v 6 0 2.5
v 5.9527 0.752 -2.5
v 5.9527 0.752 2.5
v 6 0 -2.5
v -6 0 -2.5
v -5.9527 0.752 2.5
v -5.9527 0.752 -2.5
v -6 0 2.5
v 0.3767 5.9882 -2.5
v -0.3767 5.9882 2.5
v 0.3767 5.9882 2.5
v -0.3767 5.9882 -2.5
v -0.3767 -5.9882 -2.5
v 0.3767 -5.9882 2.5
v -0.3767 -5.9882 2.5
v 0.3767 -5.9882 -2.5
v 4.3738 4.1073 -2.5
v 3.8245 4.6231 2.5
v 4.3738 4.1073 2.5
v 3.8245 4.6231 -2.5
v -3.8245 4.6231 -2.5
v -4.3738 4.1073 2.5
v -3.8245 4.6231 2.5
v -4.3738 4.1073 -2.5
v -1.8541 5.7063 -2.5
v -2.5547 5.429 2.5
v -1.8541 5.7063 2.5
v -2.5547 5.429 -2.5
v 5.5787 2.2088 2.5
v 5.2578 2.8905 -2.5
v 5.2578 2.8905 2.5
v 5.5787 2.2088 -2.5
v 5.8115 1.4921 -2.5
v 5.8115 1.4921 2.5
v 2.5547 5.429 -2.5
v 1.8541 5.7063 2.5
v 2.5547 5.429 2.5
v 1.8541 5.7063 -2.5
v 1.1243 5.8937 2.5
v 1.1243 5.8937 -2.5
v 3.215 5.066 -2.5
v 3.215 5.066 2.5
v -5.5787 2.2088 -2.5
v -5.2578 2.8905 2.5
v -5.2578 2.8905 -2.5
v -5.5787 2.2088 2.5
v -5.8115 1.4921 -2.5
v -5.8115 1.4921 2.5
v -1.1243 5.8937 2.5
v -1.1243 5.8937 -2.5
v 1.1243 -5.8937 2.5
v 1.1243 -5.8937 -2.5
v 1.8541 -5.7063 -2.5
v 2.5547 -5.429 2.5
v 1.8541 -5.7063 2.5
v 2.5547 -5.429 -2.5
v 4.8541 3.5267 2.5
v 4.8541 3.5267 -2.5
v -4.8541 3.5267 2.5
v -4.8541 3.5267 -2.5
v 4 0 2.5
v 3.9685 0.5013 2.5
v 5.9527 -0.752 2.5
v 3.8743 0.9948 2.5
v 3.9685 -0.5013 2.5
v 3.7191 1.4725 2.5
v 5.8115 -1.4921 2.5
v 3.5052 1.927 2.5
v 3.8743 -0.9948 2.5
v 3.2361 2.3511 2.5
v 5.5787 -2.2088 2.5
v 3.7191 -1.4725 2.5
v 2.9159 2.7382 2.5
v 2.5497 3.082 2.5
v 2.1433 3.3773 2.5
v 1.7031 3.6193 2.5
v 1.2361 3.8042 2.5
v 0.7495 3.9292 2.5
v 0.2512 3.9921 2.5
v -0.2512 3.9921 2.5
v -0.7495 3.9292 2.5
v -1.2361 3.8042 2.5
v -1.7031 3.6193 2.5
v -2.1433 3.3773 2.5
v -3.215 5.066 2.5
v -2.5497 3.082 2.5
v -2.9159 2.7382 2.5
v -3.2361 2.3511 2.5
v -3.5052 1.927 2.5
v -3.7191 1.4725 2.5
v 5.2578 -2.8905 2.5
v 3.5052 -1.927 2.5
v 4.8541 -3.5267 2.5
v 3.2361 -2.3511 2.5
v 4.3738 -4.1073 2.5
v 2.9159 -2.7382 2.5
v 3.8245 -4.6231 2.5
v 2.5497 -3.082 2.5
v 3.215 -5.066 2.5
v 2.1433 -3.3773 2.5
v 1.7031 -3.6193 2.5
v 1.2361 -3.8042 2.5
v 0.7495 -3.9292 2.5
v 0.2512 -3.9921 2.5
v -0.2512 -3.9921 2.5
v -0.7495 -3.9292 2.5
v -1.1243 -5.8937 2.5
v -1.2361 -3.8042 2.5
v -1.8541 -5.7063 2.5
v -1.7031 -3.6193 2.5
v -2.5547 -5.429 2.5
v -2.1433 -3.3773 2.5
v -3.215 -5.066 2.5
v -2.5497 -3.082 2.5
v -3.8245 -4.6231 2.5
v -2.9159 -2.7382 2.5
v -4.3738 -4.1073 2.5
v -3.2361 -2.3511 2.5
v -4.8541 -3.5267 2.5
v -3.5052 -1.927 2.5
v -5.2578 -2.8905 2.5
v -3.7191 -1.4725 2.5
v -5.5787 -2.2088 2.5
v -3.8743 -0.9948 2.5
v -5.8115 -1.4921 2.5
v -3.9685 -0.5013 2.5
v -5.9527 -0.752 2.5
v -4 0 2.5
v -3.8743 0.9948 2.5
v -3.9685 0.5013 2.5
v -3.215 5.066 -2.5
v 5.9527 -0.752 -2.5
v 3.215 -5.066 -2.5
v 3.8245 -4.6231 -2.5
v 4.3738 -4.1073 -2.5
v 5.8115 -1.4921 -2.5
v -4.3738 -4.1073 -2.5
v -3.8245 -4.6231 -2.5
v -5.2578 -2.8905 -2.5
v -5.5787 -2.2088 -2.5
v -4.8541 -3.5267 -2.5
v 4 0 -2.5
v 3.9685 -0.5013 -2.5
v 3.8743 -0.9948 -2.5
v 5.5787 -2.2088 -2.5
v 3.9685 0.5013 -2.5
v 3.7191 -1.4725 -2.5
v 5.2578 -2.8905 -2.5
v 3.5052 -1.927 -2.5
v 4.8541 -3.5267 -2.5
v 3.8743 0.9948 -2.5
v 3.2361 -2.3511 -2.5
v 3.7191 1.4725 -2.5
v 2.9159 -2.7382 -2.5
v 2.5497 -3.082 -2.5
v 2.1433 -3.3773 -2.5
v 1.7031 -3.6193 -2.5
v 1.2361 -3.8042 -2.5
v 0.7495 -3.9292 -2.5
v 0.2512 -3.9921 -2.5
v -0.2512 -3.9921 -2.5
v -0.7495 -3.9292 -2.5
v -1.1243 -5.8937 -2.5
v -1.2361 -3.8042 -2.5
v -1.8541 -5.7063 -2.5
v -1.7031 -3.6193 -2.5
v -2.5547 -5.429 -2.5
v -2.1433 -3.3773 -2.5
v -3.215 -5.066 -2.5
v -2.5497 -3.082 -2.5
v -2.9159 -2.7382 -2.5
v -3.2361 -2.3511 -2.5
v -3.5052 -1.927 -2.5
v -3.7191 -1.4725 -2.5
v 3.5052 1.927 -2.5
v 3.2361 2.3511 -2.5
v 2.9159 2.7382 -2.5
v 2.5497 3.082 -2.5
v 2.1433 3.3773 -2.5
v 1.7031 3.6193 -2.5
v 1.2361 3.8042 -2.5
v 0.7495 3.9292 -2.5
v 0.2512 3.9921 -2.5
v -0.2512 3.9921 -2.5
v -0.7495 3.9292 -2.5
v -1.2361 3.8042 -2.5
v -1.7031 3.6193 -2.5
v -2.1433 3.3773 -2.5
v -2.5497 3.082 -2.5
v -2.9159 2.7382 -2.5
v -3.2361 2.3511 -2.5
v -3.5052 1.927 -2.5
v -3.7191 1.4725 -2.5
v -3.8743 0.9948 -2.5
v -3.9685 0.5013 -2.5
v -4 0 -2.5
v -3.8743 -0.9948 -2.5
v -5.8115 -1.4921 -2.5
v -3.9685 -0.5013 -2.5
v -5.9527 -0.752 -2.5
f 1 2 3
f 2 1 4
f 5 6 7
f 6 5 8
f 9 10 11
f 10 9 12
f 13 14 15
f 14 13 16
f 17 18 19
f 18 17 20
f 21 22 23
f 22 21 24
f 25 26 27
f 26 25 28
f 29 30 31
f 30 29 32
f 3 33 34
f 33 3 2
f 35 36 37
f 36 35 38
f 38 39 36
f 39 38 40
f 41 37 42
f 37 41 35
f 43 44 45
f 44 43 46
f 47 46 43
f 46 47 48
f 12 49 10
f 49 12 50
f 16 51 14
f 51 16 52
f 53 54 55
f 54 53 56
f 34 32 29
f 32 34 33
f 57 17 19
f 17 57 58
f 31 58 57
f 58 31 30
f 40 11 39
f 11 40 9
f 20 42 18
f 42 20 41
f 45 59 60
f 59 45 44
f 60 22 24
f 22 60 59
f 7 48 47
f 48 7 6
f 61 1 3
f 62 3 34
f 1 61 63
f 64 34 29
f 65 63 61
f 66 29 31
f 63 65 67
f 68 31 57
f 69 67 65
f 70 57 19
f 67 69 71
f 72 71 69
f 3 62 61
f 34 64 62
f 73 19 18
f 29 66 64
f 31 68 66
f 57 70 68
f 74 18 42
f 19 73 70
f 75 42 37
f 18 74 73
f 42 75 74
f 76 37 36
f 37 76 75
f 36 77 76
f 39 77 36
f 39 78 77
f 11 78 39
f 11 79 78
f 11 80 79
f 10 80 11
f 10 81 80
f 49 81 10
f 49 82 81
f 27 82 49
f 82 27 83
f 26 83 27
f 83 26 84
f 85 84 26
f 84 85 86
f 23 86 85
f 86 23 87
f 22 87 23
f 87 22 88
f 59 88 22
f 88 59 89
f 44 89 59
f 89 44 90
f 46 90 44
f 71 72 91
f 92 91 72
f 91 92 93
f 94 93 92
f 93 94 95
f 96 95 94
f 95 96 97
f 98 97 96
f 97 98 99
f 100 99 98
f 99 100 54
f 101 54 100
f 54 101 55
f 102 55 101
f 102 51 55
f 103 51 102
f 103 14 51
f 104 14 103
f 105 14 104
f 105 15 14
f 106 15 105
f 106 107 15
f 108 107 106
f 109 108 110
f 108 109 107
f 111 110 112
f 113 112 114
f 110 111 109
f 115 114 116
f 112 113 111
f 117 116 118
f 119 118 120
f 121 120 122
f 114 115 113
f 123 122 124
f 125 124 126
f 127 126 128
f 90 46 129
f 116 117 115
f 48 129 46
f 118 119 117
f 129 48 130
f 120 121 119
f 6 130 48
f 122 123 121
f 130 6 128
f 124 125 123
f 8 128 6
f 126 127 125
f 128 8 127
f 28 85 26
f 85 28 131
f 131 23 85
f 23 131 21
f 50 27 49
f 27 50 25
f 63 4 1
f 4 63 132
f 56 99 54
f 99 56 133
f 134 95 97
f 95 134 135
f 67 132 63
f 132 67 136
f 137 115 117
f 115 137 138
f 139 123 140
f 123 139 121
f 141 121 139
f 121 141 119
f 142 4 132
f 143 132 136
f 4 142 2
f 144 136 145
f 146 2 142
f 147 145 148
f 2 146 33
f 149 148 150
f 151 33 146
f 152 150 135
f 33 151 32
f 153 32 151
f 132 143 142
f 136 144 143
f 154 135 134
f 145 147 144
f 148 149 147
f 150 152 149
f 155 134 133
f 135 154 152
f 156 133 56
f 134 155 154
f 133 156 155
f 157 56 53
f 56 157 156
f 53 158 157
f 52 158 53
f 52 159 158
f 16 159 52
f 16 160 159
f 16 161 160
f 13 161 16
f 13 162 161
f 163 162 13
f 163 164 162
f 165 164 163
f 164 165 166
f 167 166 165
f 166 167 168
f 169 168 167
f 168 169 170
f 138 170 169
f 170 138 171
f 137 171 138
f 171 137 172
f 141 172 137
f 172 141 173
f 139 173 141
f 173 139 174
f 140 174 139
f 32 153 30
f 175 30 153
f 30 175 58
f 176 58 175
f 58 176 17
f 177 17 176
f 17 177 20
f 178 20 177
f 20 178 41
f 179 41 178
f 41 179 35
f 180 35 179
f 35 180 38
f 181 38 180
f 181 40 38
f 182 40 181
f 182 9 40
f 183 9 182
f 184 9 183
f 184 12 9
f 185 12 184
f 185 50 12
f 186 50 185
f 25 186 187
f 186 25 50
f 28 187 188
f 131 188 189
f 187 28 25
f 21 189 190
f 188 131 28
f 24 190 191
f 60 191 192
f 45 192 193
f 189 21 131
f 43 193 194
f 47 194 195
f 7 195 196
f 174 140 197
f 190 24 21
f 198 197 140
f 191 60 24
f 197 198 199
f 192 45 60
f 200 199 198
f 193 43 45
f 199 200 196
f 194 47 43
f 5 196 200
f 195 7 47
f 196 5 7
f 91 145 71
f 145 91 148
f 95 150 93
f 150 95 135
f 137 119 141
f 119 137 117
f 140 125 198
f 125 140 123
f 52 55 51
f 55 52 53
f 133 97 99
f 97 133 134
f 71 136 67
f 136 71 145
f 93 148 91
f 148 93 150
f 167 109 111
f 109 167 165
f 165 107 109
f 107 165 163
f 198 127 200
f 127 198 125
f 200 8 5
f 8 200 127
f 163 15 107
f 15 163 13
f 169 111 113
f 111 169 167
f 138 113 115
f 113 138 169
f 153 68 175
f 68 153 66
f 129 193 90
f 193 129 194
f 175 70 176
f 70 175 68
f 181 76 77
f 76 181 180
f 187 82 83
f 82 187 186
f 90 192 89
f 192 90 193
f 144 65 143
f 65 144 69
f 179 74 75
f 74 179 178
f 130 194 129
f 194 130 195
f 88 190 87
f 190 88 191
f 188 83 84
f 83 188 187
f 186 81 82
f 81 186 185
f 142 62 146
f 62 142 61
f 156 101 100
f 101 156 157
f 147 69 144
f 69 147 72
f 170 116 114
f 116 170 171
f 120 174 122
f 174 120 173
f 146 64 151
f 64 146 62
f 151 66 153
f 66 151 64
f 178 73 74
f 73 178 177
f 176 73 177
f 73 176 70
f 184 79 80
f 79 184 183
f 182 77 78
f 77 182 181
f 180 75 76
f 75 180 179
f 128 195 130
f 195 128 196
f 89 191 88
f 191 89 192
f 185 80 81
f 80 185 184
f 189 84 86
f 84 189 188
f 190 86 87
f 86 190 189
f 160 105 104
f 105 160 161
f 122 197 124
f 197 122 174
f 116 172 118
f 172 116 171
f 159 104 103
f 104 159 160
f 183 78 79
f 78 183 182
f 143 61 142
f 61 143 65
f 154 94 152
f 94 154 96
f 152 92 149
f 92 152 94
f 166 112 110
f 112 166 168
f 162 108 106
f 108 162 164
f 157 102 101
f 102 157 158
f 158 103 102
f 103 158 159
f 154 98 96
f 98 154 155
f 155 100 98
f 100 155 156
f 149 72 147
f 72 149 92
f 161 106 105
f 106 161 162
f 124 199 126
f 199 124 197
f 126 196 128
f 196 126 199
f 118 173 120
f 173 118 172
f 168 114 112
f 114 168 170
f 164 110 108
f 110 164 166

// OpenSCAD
$fn = 50;


difference() {
	union() {
		translate(v = [0, 0, -2.5000000000]) {
			cylinder(h = 5, r = 6.0000000000);
		}
	}
	union() {
		translate(v = [0, 0, -100.0000000000]) {
			cylinder(h = 200, r = 4);
		}
	}
}
